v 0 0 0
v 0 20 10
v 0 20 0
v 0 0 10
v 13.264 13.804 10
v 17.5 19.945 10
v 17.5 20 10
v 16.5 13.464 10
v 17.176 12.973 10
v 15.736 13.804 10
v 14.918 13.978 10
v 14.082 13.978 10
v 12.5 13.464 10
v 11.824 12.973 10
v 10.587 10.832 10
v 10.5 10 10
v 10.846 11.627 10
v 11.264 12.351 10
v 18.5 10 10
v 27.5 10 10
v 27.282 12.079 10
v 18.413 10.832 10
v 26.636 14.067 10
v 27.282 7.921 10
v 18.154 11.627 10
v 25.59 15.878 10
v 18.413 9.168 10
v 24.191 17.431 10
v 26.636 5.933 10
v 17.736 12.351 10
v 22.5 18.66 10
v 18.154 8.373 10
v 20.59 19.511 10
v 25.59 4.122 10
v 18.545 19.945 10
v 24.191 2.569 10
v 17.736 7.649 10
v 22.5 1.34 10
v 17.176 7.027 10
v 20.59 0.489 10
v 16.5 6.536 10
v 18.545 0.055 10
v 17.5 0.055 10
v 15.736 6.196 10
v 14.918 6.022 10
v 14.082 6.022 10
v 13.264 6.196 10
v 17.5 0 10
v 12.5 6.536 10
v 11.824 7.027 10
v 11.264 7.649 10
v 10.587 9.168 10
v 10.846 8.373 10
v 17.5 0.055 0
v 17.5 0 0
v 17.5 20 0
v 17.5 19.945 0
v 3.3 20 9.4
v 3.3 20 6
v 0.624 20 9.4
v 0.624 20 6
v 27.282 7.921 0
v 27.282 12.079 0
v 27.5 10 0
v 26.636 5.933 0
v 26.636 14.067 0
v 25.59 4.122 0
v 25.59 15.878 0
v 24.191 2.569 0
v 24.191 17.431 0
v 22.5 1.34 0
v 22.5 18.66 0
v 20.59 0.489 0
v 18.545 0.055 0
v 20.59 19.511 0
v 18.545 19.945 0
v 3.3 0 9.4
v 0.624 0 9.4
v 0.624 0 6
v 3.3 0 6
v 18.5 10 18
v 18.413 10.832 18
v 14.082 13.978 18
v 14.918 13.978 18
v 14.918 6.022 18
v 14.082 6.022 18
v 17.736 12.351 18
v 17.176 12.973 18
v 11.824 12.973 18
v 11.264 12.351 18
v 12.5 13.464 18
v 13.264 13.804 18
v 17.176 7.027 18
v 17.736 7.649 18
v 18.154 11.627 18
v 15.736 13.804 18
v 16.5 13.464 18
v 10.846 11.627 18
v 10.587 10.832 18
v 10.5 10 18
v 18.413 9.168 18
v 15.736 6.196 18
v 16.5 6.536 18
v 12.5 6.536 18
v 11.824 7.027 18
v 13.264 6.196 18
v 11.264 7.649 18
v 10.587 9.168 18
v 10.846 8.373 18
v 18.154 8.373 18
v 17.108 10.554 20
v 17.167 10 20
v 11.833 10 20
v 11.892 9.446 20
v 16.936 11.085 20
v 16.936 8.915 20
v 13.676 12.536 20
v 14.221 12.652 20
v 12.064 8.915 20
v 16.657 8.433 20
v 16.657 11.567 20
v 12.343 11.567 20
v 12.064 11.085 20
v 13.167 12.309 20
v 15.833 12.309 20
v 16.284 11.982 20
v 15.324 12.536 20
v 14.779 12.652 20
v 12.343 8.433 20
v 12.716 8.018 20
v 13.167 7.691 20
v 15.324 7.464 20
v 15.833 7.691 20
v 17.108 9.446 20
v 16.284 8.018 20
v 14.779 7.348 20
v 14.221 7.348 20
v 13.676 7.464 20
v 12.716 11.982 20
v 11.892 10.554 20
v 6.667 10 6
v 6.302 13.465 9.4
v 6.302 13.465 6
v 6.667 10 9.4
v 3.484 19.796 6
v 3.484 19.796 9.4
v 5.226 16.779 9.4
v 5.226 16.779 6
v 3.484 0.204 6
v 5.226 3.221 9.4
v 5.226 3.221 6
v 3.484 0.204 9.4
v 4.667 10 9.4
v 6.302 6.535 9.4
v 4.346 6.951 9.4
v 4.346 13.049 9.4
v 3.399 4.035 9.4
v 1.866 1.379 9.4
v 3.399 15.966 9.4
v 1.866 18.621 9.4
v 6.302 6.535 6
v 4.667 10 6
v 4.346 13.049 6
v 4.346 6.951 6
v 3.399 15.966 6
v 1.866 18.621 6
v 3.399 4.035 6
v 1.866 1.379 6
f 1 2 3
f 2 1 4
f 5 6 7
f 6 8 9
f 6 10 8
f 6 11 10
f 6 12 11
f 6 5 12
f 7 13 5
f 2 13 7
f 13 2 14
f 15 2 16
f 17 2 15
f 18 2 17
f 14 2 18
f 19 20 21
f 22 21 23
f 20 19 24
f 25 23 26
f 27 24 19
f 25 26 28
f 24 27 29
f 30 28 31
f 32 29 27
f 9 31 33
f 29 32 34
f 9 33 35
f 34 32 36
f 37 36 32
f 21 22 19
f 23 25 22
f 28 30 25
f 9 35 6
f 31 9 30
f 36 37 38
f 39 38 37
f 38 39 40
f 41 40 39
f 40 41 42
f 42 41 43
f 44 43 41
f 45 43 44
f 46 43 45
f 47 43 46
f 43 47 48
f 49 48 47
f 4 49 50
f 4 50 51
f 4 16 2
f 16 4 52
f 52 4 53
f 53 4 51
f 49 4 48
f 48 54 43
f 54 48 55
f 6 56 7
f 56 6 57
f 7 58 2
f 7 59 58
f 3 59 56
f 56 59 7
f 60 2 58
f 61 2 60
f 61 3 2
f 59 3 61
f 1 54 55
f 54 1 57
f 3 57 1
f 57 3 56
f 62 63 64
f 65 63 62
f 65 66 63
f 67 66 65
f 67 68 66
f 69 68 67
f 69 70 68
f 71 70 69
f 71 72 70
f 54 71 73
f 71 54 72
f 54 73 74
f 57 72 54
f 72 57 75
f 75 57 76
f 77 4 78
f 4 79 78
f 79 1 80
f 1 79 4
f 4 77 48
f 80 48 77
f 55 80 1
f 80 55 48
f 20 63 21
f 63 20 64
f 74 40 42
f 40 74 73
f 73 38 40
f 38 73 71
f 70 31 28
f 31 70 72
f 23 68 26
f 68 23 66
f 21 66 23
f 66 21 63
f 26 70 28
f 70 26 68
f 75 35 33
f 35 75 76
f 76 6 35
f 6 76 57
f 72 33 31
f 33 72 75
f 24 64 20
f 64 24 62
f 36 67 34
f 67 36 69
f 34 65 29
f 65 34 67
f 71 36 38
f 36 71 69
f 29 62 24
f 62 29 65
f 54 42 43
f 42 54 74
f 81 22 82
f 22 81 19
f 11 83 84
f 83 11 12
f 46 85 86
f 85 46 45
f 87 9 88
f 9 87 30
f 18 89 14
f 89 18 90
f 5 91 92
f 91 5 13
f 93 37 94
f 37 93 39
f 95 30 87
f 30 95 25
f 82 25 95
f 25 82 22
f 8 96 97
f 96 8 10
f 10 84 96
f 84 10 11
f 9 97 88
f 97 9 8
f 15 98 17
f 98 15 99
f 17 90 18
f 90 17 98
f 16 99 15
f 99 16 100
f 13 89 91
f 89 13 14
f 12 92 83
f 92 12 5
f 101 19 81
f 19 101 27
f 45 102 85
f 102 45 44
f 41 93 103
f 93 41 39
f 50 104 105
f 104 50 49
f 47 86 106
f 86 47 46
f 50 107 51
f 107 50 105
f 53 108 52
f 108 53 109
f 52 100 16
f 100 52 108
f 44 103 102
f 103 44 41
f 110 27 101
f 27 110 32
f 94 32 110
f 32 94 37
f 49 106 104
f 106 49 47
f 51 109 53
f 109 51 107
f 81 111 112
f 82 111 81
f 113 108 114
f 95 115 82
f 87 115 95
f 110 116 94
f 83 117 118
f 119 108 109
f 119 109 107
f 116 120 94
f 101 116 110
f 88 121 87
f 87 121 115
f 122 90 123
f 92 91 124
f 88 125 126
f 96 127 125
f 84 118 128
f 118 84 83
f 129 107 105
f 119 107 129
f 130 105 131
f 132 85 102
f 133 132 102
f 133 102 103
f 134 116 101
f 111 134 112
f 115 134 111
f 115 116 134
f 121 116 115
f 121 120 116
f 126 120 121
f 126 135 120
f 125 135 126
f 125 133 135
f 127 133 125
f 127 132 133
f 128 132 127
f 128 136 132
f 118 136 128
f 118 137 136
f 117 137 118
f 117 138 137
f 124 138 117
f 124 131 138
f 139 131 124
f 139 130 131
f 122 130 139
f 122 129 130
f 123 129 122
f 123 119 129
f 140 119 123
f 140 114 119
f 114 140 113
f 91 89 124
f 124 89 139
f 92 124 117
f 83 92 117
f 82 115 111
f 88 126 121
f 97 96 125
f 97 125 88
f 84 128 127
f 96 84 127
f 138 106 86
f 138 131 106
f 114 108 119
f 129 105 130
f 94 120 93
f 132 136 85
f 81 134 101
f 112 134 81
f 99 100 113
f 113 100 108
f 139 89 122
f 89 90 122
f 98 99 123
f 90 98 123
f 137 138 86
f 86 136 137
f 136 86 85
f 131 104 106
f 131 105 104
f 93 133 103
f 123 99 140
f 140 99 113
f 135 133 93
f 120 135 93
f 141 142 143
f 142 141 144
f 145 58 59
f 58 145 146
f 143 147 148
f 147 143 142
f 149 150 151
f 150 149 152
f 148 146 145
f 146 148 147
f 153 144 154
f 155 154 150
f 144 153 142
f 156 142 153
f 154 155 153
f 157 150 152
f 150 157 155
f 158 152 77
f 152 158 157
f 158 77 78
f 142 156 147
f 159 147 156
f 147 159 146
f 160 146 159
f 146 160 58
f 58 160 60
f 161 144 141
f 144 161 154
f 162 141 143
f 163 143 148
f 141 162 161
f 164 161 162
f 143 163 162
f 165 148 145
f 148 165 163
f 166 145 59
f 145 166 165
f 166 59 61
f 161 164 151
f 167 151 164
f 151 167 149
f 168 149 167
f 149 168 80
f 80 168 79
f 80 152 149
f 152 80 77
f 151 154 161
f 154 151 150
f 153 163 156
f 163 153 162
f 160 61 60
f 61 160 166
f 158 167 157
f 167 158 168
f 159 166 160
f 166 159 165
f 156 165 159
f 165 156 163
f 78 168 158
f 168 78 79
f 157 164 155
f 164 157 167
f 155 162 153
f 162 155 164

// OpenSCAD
/* Spool holder for Monoprice Mini Delta (MPMD) 3D printer

    Author:  Tom Clupper
    Date: 4/11/2020
    License: Attribution-ShareAlike 4.0 International (https://creativecommons.org/licenses/by-sa/4.0)
    
    NOTES:
        - Print (1) part (it goes away from the printer)
        - This can be printd on a stock MPMD
        - All dimensions in mm
        - No Supports needed
        - This part is strapped down with one cable tie: 2.54mm wide (0.1 inches) with
            at least 115mm (4.5 inches) of working length. The part number was Ty-Its UB140A-B,
            but any "18 lbs" 2.54mm wide cable tie will do
        - I did add more infill to the post locally using PrusaSlicer.
*/

CenterHeight = 14.5;
Width = 20;
Thickness = 10;
BearingSupportDiameter = 8;
BearingSupportHeight = 8;
        
difference(){
    
    union(){
        // Main block
        cube([CenterHeight+13-Width/2, Width, Thickness]);
        
        translate([CenterHeight+13-Width/2, Width/2, 0]) cylinder(h=Thickness, r=Width/2, center=false, $fn=30);
        
        // Bearing support
        translate([CenterHeight, Width/2,Thickness]) cylinder(h=BearingSupportHeight, r=BearingSupportDiameter/2, center=false, $fn=30);
        translate([CenterHeight, Width/2,Thickness+BearingSupportHeight]) cylinder(h=2, r1=BearingSupportDiameter/2, r2=BearingSupportDiameter/3, center=false, $fn=30);   
        
    }
    
    translate([-Width/2, Width/2, Thickness-3.5-.5]) ziptie();
    
}

module ziptie(){
    difference() {
        cylinder(h=3.4, r=Width/1.2, center=false, $fn=30);

        cylinder(h=3.4, r=Width/1.2-2, center=false, $fn=30);        
    }
}
